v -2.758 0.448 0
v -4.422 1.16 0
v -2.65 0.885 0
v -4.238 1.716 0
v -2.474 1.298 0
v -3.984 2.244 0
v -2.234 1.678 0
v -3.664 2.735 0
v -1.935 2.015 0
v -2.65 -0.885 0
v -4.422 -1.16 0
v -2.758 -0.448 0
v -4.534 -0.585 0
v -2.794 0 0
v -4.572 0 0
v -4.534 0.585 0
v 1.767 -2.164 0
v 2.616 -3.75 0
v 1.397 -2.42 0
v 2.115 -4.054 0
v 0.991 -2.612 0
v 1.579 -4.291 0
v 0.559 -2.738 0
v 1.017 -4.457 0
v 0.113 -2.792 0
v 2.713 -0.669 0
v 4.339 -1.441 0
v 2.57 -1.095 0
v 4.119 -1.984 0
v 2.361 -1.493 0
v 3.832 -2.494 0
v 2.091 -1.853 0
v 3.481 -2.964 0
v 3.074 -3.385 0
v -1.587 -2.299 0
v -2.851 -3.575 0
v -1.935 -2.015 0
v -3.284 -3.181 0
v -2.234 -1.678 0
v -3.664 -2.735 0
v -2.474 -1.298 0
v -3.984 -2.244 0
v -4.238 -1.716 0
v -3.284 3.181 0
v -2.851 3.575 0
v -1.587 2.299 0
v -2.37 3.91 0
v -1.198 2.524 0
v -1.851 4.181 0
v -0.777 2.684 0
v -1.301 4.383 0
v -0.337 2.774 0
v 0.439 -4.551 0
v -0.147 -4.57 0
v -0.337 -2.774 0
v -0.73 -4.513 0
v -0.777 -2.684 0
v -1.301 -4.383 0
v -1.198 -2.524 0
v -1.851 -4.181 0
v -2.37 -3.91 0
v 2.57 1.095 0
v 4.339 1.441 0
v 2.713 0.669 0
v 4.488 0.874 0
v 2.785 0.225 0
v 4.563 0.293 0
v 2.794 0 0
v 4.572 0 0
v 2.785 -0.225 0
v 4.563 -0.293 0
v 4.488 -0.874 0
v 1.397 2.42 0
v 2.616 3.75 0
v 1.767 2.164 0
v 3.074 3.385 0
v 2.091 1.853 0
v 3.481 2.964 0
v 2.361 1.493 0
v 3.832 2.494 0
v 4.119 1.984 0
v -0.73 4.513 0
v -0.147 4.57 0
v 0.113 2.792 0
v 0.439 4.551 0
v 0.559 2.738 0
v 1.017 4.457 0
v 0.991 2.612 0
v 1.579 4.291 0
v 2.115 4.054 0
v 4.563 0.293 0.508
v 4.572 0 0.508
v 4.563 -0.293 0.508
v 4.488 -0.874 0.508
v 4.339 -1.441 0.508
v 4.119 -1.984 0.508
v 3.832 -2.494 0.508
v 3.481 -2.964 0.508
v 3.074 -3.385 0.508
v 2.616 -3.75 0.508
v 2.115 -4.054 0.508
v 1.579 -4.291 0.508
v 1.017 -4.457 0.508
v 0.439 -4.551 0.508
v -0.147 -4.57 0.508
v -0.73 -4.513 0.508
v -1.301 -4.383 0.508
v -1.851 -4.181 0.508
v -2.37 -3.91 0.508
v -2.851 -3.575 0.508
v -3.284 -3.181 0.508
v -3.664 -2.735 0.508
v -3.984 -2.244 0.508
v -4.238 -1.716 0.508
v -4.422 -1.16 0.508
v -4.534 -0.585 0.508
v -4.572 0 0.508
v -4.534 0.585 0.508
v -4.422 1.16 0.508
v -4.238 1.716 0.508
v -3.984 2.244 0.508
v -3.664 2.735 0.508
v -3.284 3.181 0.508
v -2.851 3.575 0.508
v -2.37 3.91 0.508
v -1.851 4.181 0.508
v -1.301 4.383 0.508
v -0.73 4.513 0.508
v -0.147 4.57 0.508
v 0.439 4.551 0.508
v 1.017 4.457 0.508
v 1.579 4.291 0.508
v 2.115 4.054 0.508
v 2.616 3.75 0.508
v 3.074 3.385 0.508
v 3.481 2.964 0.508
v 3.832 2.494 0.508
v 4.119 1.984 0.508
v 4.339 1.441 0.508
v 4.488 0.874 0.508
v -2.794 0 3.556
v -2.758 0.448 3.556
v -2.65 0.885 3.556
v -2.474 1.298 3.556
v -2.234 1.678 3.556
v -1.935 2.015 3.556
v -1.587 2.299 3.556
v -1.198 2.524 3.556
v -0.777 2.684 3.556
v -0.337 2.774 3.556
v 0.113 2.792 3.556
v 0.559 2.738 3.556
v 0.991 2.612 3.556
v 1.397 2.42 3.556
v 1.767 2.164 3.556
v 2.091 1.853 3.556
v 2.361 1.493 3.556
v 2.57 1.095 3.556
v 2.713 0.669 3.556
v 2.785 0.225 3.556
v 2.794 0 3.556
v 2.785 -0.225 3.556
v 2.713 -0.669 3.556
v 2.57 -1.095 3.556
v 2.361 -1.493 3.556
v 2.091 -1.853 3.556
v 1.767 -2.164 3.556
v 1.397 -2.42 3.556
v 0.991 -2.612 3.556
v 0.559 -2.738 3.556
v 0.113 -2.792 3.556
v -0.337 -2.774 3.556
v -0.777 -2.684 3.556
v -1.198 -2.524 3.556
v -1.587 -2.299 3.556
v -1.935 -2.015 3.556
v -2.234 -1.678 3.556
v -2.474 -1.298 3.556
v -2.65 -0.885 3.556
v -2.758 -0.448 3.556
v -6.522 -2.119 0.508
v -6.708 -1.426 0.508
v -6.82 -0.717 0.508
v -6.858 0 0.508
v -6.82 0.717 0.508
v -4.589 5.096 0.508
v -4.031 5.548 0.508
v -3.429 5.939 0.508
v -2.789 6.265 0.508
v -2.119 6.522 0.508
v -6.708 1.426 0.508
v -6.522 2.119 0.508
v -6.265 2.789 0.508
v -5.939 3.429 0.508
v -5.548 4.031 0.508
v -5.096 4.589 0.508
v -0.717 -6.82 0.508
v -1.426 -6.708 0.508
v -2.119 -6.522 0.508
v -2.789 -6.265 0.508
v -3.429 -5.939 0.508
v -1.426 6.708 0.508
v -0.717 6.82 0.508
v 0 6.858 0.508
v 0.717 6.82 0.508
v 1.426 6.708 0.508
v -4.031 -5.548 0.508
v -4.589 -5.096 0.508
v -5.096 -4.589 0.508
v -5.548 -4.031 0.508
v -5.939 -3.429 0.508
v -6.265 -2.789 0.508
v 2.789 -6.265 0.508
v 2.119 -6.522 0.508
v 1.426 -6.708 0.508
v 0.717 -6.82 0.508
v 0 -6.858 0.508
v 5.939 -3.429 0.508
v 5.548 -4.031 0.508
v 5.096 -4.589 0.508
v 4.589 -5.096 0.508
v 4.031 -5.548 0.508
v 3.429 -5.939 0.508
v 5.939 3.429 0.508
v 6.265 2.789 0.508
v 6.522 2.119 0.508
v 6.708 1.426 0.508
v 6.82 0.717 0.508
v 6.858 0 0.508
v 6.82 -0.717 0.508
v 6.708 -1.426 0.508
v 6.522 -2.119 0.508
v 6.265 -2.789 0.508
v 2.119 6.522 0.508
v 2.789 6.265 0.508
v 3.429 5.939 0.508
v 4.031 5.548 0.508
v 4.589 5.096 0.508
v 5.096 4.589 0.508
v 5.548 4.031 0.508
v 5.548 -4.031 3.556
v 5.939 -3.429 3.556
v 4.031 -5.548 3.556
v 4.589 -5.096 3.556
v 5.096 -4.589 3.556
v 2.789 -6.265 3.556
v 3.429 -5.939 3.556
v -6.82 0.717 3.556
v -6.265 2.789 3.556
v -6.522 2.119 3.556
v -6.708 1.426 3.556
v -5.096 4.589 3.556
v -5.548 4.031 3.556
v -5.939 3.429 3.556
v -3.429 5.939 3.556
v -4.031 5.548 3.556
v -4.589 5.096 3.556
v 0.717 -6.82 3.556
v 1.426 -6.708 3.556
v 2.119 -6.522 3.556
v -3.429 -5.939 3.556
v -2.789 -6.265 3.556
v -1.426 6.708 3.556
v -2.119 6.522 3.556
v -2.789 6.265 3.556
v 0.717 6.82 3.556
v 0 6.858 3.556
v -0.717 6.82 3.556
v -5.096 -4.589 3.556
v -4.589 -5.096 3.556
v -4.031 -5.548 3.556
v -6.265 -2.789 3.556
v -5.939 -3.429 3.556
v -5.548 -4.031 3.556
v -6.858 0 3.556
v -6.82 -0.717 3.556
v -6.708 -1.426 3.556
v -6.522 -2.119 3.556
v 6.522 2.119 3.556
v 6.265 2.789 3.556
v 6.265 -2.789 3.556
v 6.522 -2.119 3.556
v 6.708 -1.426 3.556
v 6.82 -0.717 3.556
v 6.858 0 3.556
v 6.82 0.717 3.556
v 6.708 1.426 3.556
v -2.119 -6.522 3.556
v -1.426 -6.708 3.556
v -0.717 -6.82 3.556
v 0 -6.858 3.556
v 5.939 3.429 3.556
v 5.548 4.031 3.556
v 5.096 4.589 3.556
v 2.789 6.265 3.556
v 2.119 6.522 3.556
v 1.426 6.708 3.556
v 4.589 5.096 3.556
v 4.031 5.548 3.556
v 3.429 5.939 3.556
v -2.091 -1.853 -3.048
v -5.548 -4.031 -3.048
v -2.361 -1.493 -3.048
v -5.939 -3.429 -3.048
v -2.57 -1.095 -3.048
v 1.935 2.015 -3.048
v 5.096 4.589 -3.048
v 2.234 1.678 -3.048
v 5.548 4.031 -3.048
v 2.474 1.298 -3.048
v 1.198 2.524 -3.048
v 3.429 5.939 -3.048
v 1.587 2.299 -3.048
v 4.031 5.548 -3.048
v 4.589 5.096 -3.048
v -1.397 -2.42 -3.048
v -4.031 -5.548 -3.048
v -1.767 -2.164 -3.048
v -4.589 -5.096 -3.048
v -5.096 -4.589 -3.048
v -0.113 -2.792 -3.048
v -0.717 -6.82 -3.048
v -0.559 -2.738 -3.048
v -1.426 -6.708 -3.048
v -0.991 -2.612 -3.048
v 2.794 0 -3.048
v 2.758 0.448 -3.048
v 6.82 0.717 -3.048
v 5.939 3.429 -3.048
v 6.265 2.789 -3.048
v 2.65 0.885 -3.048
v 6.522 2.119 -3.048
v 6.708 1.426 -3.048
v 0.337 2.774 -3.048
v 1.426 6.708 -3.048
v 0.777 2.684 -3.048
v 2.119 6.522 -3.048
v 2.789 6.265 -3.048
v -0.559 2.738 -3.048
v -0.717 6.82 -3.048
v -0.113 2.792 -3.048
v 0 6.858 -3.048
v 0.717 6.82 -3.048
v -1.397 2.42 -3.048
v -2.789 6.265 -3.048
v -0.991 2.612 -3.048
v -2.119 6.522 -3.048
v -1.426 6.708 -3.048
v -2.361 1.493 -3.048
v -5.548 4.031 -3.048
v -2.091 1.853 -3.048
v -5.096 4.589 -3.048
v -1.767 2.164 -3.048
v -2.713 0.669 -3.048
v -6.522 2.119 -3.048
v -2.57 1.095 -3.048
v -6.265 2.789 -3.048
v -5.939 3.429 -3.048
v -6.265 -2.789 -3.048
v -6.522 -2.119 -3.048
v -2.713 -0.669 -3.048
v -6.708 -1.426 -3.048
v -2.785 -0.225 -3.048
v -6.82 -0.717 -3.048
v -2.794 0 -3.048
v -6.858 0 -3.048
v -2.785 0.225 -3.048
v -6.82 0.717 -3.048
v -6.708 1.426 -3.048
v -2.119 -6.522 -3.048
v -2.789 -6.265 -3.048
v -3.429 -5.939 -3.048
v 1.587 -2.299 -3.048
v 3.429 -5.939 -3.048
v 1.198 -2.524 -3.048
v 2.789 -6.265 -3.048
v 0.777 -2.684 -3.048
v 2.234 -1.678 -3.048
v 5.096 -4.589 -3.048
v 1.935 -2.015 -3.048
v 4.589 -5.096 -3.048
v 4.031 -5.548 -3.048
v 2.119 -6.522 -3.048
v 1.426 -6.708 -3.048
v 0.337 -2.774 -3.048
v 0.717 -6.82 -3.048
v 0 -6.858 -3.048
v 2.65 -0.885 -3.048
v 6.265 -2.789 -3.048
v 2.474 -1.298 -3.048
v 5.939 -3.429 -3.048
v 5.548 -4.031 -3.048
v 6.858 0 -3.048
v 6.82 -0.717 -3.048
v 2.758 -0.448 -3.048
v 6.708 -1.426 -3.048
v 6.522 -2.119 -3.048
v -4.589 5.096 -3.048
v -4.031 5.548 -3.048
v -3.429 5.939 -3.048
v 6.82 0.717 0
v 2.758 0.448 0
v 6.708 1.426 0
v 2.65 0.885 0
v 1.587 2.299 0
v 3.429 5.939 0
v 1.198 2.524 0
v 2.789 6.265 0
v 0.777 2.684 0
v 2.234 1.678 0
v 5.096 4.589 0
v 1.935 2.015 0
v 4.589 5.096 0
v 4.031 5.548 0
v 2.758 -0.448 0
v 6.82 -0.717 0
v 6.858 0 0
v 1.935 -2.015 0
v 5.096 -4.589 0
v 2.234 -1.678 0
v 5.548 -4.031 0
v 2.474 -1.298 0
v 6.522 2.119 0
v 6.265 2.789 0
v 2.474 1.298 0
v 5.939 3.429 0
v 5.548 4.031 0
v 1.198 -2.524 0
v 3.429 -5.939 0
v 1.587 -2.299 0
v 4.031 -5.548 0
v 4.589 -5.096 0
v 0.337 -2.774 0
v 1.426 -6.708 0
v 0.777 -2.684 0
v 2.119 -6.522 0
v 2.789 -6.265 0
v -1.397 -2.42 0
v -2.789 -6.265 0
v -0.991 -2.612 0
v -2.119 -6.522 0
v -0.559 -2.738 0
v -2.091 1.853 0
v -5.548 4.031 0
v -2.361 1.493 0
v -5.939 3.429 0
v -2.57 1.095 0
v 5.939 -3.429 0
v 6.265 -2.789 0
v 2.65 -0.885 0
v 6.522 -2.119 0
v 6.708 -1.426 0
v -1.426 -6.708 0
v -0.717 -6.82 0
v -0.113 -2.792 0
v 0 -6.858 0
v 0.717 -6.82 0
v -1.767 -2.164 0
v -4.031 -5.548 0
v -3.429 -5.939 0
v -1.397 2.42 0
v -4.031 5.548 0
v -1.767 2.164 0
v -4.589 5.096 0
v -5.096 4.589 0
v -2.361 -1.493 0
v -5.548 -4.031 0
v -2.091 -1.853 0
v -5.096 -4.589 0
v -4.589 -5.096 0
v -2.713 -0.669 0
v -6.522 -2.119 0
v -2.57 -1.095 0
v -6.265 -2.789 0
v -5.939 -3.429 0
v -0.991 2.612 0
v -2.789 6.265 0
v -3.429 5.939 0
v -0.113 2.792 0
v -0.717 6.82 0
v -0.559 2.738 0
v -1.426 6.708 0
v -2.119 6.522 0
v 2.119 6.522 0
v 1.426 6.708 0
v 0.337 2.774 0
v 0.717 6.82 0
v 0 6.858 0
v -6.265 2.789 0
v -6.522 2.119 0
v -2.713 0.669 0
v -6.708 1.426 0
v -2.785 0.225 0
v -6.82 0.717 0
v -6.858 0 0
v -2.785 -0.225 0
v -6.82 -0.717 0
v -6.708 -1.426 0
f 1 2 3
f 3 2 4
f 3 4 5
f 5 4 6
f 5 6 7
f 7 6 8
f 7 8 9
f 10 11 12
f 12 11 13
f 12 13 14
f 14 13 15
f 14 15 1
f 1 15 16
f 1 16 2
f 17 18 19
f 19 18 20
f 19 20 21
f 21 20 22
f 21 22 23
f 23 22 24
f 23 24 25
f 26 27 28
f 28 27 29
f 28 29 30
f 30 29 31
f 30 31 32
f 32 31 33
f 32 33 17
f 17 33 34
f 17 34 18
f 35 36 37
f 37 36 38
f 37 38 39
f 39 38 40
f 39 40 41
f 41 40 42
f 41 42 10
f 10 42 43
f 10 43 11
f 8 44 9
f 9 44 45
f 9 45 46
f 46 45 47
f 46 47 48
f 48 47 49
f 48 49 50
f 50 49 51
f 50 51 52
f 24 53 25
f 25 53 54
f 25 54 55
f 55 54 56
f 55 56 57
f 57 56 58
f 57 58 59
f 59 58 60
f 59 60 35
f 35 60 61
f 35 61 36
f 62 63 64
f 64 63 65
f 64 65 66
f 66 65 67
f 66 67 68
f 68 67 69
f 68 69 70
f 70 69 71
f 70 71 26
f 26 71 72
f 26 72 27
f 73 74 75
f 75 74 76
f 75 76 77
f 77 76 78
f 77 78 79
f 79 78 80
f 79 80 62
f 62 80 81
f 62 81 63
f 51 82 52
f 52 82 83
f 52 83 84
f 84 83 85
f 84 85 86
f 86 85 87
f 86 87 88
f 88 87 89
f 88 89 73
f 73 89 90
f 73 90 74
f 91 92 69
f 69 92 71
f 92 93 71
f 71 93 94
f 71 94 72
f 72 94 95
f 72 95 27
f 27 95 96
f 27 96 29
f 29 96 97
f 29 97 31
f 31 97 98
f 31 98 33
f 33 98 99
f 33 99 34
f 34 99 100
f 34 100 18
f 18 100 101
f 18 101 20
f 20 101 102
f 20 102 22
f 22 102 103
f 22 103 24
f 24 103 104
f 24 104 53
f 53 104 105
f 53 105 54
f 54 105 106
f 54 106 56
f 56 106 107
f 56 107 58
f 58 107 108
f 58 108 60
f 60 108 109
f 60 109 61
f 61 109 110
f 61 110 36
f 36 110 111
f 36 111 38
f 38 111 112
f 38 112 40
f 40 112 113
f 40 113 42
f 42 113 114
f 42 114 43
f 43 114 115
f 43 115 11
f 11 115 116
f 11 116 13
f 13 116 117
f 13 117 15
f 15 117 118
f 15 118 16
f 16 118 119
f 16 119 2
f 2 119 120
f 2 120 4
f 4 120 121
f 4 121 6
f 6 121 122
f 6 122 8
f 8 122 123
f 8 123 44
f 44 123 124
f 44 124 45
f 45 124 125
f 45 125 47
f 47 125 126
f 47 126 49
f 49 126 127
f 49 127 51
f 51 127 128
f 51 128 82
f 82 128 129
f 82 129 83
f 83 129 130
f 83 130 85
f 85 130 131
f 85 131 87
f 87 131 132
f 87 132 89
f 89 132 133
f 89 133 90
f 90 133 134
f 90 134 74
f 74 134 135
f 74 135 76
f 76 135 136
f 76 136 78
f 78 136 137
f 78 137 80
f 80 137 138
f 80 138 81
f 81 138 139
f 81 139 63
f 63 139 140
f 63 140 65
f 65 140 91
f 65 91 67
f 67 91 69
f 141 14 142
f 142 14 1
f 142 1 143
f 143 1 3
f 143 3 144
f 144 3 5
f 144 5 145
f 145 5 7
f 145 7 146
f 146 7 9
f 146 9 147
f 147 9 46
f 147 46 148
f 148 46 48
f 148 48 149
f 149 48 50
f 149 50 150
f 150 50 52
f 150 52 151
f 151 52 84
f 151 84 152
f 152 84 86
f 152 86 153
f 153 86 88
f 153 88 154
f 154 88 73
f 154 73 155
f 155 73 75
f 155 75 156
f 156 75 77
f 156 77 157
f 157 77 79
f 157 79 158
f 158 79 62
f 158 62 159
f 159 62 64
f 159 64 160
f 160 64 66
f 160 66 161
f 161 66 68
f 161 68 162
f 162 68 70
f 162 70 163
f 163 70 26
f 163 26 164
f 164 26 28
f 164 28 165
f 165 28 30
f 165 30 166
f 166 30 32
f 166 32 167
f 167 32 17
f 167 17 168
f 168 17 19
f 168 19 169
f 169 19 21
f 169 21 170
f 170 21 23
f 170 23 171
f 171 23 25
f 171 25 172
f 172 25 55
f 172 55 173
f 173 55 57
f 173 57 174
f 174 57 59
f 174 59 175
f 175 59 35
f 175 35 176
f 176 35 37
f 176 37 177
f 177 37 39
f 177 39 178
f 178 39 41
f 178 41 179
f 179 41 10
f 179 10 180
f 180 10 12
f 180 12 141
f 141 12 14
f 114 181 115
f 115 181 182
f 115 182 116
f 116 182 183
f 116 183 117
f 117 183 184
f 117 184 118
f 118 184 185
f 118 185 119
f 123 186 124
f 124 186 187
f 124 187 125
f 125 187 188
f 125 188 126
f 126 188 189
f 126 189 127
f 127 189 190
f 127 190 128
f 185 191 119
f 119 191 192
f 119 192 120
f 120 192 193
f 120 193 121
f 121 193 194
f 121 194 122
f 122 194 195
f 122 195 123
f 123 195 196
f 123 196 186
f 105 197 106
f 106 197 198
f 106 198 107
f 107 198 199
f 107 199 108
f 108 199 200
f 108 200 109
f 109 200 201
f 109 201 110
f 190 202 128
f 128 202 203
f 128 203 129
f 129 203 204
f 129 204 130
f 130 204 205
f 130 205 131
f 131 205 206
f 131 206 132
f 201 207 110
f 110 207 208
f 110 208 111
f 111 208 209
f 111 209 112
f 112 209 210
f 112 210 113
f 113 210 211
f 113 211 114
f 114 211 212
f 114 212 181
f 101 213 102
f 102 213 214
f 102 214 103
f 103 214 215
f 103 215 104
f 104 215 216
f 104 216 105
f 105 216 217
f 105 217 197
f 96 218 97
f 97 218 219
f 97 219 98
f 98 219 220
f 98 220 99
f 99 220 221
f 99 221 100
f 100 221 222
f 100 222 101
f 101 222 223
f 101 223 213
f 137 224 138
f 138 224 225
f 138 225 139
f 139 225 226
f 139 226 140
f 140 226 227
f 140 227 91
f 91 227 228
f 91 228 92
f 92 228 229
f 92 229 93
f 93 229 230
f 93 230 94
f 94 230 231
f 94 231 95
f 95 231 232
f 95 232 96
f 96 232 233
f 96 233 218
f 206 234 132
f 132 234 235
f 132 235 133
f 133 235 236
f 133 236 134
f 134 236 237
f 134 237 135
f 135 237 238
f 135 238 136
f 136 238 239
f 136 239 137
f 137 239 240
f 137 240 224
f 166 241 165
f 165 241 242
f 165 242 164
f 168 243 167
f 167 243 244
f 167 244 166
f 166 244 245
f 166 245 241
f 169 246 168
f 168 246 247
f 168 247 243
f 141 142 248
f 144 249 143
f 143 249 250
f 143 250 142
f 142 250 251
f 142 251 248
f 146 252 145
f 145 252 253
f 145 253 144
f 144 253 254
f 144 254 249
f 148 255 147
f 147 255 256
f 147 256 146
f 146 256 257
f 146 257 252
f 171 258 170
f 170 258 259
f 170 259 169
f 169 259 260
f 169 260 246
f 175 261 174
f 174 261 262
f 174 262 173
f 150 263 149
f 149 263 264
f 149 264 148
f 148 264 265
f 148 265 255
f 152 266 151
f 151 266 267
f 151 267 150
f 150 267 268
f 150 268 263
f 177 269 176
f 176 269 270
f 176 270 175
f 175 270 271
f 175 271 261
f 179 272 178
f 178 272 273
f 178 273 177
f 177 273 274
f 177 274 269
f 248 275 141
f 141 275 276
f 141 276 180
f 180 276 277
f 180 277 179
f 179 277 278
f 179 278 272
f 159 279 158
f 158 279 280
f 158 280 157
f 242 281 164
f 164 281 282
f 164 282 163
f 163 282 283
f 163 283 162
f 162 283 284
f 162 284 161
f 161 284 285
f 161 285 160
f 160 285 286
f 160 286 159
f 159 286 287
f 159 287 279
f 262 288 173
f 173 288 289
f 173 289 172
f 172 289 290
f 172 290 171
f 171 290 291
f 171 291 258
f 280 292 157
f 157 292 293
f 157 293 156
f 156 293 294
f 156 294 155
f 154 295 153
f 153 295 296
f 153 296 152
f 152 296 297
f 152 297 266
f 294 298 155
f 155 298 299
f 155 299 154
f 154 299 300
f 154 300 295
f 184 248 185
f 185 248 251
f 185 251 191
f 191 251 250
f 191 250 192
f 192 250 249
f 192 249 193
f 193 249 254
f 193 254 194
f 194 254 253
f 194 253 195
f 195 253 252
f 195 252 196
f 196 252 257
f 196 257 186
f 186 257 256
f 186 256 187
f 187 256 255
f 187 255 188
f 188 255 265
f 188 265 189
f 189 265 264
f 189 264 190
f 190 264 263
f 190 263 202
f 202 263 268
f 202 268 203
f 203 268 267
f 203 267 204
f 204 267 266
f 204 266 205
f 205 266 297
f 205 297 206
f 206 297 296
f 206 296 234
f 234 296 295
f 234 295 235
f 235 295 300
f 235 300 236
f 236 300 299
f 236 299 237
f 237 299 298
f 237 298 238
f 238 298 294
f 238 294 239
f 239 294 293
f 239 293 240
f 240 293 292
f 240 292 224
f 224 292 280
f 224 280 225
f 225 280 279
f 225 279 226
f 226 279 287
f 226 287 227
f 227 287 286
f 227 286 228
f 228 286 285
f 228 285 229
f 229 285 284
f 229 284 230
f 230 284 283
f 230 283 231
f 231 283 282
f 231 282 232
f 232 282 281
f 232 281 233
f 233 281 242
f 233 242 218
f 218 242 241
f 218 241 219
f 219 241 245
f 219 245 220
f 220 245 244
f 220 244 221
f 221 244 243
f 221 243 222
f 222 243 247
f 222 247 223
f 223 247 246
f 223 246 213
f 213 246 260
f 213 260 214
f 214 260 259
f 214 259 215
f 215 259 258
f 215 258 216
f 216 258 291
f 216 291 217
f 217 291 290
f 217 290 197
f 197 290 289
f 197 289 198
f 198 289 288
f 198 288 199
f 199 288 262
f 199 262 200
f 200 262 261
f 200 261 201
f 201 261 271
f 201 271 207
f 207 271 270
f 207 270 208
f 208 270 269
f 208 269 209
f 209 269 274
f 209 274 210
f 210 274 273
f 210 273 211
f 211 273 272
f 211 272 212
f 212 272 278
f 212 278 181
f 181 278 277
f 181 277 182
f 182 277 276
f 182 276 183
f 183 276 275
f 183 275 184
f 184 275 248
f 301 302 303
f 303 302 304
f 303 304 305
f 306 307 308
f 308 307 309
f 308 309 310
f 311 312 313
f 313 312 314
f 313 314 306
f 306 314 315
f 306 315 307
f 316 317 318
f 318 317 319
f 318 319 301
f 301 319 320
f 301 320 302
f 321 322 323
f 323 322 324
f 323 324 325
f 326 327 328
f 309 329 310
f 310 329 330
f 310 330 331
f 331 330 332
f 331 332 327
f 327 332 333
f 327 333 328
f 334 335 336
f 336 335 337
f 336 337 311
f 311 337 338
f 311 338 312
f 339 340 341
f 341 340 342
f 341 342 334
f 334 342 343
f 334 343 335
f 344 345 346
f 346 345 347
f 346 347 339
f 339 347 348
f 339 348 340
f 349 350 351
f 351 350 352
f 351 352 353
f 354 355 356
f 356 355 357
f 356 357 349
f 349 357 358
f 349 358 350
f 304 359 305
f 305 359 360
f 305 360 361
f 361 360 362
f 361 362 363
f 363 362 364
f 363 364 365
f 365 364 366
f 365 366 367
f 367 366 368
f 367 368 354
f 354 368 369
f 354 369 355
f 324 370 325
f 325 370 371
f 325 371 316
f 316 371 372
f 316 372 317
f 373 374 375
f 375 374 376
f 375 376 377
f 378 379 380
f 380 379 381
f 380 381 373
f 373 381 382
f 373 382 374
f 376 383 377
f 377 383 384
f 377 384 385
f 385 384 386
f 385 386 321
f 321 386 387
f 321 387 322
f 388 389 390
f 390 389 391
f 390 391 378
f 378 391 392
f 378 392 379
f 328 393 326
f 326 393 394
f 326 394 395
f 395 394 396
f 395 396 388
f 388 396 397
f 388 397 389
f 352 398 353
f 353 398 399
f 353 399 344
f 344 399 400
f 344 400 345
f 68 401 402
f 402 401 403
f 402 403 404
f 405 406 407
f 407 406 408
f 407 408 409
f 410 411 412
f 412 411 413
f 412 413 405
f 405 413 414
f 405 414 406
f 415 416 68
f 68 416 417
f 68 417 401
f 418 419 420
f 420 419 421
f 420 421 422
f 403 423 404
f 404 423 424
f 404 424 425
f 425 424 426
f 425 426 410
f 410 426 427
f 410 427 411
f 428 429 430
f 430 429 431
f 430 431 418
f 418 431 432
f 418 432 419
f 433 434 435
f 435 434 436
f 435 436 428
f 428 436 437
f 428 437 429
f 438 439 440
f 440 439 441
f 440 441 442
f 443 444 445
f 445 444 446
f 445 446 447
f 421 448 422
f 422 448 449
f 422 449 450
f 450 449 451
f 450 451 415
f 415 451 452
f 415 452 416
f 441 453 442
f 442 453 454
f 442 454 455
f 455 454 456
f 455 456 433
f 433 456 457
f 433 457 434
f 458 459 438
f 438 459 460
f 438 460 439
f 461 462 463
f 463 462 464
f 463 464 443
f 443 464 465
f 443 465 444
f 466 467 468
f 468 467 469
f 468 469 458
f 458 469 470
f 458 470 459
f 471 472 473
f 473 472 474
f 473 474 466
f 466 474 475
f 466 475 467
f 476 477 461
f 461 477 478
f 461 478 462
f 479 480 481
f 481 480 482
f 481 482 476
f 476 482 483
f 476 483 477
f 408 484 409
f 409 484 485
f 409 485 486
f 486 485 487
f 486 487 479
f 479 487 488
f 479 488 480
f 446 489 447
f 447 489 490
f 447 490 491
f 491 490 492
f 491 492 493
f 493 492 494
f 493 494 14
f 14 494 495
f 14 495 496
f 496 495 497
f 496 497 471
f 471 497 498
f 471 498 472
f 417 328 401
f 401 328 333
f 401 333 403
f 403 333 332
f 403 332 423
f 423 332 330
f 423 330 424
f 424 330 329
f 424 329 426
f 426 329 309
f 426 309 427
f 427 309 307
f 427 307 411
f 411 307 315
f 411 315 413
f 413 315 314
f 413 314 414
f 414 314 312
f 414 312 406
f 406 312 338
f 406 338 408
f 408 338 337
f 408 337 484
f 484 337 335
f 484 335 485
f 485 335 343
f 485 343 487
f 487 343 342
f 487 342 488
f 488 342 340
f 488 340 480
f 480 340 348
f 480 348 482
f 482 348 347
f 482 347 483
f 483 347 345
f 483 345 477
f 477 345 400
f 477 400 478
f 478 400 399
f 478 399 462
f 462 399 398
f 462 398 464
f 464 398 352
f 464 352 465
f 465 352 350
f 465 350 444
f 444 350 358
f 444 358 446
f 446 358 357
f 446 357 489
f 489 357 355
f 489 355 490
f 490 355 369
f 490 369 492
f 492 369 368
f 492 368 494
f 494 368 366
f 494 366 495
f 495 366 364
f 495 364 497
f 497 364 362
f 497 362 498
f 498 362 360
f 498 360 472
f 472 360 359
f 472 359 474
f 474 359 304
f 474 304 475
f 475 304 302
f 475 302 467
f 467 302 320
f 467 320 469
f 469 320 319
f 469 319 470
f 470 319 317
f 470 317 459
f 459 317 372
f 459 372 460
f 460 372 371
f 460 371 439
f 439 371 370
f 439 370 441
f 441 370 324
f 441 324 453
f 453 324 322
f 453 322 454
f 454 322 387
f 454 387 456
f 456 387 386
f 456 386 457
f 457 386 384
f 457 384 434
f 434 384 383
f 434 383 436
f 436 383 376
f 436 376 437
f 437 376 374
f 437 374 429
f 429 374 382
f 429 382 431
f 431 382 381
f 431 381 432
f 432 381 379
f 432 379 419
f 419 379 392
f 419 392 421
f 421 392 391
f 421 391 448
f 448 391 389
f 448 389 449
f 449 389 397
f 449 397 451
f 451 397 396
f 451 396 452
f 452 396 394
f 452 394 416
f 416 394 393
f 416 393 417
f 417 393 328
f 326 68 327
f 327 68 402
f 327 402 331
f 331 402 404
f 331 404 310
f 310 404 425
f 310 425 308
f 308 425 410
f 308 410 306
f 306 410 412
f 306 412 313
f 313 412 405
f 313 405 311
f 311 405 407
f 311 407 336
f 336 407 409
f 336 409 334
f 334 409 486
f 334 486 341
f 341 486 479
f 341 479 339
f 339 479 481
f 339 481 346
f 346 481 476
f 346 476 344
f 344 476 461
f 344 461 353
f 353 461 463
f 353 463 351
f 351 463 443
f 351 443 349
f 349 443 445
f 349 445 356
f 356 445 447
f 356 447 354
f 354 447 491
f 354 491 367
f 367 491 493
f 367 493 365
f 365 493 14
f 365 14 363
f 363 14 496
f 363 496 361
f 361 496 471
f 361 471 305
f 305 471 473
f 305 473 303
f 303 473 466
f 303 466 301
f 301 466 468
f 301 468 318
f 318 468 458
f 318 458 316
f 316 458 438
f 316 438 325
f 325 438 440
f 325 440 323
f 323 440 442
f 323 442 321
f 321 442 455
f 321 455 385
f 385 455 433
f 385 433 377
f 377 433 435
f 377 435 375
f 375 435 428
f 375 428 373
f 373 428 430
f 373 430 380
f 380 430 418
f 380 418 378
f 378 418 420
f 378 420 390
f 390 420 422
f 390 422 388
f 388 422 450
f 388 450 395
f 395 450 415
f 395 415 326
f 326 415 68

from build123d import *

# Parameters (mm, degrees)
SKETCH1_R           = 4.572
SKETCH1_R_2         = 2.794
BOSS_EXTRUDE2_DEPTH = 0.508
SKETCH3_R           = 6.858
SKETCH3_R_2         = 2.794
BOSS_EXTRUDE3_DEPTH = 3.048
SKETCH4_R           = 6.858
SKETCH4_R_2         = 2.794
BOSS_EXTRUDE4_DEPTH = 3.048


with BuildPart() as part:
    # Sketch1 → Boss-Extrude2 (new body)
    with BuildSketch(Plane.XY):
        Circle(SKETCH1_R)
        Circle(SKETCH1_R_2, mode=Mode.SUBTRACT)
    extrude(amount=BOSS_EXTRUDE2_DEPTH)

    # Sketch3 → Boss-Extrude3 (add)
    with BuildSketch(Plane.XY.offset(0.508)):
        Circle(SKETCH3_R)
        Circle(SKETCH3_R_2, mode=Mode.SUBTRACT)
    extrude(amount=BOSS_EXTRUDE3_DEPTH)


with BuildPart() as body_2:
    # Sketch4 → Boss-Extrude4 (new body)
    with BuildSketch(Plane(origin=(0, 0, 0), x_dir=(-1, 0, 0), z_dir=(0, 0, -1))):
        Circle(SKETCH4_R)
        Circle(SKETCH4_R_2, mode=Mode.SUBTRACT)
    extrude(amount=BOSS_EXTRUDE4_DEPTH)


solid = Compound([part.part, body_2.part])
